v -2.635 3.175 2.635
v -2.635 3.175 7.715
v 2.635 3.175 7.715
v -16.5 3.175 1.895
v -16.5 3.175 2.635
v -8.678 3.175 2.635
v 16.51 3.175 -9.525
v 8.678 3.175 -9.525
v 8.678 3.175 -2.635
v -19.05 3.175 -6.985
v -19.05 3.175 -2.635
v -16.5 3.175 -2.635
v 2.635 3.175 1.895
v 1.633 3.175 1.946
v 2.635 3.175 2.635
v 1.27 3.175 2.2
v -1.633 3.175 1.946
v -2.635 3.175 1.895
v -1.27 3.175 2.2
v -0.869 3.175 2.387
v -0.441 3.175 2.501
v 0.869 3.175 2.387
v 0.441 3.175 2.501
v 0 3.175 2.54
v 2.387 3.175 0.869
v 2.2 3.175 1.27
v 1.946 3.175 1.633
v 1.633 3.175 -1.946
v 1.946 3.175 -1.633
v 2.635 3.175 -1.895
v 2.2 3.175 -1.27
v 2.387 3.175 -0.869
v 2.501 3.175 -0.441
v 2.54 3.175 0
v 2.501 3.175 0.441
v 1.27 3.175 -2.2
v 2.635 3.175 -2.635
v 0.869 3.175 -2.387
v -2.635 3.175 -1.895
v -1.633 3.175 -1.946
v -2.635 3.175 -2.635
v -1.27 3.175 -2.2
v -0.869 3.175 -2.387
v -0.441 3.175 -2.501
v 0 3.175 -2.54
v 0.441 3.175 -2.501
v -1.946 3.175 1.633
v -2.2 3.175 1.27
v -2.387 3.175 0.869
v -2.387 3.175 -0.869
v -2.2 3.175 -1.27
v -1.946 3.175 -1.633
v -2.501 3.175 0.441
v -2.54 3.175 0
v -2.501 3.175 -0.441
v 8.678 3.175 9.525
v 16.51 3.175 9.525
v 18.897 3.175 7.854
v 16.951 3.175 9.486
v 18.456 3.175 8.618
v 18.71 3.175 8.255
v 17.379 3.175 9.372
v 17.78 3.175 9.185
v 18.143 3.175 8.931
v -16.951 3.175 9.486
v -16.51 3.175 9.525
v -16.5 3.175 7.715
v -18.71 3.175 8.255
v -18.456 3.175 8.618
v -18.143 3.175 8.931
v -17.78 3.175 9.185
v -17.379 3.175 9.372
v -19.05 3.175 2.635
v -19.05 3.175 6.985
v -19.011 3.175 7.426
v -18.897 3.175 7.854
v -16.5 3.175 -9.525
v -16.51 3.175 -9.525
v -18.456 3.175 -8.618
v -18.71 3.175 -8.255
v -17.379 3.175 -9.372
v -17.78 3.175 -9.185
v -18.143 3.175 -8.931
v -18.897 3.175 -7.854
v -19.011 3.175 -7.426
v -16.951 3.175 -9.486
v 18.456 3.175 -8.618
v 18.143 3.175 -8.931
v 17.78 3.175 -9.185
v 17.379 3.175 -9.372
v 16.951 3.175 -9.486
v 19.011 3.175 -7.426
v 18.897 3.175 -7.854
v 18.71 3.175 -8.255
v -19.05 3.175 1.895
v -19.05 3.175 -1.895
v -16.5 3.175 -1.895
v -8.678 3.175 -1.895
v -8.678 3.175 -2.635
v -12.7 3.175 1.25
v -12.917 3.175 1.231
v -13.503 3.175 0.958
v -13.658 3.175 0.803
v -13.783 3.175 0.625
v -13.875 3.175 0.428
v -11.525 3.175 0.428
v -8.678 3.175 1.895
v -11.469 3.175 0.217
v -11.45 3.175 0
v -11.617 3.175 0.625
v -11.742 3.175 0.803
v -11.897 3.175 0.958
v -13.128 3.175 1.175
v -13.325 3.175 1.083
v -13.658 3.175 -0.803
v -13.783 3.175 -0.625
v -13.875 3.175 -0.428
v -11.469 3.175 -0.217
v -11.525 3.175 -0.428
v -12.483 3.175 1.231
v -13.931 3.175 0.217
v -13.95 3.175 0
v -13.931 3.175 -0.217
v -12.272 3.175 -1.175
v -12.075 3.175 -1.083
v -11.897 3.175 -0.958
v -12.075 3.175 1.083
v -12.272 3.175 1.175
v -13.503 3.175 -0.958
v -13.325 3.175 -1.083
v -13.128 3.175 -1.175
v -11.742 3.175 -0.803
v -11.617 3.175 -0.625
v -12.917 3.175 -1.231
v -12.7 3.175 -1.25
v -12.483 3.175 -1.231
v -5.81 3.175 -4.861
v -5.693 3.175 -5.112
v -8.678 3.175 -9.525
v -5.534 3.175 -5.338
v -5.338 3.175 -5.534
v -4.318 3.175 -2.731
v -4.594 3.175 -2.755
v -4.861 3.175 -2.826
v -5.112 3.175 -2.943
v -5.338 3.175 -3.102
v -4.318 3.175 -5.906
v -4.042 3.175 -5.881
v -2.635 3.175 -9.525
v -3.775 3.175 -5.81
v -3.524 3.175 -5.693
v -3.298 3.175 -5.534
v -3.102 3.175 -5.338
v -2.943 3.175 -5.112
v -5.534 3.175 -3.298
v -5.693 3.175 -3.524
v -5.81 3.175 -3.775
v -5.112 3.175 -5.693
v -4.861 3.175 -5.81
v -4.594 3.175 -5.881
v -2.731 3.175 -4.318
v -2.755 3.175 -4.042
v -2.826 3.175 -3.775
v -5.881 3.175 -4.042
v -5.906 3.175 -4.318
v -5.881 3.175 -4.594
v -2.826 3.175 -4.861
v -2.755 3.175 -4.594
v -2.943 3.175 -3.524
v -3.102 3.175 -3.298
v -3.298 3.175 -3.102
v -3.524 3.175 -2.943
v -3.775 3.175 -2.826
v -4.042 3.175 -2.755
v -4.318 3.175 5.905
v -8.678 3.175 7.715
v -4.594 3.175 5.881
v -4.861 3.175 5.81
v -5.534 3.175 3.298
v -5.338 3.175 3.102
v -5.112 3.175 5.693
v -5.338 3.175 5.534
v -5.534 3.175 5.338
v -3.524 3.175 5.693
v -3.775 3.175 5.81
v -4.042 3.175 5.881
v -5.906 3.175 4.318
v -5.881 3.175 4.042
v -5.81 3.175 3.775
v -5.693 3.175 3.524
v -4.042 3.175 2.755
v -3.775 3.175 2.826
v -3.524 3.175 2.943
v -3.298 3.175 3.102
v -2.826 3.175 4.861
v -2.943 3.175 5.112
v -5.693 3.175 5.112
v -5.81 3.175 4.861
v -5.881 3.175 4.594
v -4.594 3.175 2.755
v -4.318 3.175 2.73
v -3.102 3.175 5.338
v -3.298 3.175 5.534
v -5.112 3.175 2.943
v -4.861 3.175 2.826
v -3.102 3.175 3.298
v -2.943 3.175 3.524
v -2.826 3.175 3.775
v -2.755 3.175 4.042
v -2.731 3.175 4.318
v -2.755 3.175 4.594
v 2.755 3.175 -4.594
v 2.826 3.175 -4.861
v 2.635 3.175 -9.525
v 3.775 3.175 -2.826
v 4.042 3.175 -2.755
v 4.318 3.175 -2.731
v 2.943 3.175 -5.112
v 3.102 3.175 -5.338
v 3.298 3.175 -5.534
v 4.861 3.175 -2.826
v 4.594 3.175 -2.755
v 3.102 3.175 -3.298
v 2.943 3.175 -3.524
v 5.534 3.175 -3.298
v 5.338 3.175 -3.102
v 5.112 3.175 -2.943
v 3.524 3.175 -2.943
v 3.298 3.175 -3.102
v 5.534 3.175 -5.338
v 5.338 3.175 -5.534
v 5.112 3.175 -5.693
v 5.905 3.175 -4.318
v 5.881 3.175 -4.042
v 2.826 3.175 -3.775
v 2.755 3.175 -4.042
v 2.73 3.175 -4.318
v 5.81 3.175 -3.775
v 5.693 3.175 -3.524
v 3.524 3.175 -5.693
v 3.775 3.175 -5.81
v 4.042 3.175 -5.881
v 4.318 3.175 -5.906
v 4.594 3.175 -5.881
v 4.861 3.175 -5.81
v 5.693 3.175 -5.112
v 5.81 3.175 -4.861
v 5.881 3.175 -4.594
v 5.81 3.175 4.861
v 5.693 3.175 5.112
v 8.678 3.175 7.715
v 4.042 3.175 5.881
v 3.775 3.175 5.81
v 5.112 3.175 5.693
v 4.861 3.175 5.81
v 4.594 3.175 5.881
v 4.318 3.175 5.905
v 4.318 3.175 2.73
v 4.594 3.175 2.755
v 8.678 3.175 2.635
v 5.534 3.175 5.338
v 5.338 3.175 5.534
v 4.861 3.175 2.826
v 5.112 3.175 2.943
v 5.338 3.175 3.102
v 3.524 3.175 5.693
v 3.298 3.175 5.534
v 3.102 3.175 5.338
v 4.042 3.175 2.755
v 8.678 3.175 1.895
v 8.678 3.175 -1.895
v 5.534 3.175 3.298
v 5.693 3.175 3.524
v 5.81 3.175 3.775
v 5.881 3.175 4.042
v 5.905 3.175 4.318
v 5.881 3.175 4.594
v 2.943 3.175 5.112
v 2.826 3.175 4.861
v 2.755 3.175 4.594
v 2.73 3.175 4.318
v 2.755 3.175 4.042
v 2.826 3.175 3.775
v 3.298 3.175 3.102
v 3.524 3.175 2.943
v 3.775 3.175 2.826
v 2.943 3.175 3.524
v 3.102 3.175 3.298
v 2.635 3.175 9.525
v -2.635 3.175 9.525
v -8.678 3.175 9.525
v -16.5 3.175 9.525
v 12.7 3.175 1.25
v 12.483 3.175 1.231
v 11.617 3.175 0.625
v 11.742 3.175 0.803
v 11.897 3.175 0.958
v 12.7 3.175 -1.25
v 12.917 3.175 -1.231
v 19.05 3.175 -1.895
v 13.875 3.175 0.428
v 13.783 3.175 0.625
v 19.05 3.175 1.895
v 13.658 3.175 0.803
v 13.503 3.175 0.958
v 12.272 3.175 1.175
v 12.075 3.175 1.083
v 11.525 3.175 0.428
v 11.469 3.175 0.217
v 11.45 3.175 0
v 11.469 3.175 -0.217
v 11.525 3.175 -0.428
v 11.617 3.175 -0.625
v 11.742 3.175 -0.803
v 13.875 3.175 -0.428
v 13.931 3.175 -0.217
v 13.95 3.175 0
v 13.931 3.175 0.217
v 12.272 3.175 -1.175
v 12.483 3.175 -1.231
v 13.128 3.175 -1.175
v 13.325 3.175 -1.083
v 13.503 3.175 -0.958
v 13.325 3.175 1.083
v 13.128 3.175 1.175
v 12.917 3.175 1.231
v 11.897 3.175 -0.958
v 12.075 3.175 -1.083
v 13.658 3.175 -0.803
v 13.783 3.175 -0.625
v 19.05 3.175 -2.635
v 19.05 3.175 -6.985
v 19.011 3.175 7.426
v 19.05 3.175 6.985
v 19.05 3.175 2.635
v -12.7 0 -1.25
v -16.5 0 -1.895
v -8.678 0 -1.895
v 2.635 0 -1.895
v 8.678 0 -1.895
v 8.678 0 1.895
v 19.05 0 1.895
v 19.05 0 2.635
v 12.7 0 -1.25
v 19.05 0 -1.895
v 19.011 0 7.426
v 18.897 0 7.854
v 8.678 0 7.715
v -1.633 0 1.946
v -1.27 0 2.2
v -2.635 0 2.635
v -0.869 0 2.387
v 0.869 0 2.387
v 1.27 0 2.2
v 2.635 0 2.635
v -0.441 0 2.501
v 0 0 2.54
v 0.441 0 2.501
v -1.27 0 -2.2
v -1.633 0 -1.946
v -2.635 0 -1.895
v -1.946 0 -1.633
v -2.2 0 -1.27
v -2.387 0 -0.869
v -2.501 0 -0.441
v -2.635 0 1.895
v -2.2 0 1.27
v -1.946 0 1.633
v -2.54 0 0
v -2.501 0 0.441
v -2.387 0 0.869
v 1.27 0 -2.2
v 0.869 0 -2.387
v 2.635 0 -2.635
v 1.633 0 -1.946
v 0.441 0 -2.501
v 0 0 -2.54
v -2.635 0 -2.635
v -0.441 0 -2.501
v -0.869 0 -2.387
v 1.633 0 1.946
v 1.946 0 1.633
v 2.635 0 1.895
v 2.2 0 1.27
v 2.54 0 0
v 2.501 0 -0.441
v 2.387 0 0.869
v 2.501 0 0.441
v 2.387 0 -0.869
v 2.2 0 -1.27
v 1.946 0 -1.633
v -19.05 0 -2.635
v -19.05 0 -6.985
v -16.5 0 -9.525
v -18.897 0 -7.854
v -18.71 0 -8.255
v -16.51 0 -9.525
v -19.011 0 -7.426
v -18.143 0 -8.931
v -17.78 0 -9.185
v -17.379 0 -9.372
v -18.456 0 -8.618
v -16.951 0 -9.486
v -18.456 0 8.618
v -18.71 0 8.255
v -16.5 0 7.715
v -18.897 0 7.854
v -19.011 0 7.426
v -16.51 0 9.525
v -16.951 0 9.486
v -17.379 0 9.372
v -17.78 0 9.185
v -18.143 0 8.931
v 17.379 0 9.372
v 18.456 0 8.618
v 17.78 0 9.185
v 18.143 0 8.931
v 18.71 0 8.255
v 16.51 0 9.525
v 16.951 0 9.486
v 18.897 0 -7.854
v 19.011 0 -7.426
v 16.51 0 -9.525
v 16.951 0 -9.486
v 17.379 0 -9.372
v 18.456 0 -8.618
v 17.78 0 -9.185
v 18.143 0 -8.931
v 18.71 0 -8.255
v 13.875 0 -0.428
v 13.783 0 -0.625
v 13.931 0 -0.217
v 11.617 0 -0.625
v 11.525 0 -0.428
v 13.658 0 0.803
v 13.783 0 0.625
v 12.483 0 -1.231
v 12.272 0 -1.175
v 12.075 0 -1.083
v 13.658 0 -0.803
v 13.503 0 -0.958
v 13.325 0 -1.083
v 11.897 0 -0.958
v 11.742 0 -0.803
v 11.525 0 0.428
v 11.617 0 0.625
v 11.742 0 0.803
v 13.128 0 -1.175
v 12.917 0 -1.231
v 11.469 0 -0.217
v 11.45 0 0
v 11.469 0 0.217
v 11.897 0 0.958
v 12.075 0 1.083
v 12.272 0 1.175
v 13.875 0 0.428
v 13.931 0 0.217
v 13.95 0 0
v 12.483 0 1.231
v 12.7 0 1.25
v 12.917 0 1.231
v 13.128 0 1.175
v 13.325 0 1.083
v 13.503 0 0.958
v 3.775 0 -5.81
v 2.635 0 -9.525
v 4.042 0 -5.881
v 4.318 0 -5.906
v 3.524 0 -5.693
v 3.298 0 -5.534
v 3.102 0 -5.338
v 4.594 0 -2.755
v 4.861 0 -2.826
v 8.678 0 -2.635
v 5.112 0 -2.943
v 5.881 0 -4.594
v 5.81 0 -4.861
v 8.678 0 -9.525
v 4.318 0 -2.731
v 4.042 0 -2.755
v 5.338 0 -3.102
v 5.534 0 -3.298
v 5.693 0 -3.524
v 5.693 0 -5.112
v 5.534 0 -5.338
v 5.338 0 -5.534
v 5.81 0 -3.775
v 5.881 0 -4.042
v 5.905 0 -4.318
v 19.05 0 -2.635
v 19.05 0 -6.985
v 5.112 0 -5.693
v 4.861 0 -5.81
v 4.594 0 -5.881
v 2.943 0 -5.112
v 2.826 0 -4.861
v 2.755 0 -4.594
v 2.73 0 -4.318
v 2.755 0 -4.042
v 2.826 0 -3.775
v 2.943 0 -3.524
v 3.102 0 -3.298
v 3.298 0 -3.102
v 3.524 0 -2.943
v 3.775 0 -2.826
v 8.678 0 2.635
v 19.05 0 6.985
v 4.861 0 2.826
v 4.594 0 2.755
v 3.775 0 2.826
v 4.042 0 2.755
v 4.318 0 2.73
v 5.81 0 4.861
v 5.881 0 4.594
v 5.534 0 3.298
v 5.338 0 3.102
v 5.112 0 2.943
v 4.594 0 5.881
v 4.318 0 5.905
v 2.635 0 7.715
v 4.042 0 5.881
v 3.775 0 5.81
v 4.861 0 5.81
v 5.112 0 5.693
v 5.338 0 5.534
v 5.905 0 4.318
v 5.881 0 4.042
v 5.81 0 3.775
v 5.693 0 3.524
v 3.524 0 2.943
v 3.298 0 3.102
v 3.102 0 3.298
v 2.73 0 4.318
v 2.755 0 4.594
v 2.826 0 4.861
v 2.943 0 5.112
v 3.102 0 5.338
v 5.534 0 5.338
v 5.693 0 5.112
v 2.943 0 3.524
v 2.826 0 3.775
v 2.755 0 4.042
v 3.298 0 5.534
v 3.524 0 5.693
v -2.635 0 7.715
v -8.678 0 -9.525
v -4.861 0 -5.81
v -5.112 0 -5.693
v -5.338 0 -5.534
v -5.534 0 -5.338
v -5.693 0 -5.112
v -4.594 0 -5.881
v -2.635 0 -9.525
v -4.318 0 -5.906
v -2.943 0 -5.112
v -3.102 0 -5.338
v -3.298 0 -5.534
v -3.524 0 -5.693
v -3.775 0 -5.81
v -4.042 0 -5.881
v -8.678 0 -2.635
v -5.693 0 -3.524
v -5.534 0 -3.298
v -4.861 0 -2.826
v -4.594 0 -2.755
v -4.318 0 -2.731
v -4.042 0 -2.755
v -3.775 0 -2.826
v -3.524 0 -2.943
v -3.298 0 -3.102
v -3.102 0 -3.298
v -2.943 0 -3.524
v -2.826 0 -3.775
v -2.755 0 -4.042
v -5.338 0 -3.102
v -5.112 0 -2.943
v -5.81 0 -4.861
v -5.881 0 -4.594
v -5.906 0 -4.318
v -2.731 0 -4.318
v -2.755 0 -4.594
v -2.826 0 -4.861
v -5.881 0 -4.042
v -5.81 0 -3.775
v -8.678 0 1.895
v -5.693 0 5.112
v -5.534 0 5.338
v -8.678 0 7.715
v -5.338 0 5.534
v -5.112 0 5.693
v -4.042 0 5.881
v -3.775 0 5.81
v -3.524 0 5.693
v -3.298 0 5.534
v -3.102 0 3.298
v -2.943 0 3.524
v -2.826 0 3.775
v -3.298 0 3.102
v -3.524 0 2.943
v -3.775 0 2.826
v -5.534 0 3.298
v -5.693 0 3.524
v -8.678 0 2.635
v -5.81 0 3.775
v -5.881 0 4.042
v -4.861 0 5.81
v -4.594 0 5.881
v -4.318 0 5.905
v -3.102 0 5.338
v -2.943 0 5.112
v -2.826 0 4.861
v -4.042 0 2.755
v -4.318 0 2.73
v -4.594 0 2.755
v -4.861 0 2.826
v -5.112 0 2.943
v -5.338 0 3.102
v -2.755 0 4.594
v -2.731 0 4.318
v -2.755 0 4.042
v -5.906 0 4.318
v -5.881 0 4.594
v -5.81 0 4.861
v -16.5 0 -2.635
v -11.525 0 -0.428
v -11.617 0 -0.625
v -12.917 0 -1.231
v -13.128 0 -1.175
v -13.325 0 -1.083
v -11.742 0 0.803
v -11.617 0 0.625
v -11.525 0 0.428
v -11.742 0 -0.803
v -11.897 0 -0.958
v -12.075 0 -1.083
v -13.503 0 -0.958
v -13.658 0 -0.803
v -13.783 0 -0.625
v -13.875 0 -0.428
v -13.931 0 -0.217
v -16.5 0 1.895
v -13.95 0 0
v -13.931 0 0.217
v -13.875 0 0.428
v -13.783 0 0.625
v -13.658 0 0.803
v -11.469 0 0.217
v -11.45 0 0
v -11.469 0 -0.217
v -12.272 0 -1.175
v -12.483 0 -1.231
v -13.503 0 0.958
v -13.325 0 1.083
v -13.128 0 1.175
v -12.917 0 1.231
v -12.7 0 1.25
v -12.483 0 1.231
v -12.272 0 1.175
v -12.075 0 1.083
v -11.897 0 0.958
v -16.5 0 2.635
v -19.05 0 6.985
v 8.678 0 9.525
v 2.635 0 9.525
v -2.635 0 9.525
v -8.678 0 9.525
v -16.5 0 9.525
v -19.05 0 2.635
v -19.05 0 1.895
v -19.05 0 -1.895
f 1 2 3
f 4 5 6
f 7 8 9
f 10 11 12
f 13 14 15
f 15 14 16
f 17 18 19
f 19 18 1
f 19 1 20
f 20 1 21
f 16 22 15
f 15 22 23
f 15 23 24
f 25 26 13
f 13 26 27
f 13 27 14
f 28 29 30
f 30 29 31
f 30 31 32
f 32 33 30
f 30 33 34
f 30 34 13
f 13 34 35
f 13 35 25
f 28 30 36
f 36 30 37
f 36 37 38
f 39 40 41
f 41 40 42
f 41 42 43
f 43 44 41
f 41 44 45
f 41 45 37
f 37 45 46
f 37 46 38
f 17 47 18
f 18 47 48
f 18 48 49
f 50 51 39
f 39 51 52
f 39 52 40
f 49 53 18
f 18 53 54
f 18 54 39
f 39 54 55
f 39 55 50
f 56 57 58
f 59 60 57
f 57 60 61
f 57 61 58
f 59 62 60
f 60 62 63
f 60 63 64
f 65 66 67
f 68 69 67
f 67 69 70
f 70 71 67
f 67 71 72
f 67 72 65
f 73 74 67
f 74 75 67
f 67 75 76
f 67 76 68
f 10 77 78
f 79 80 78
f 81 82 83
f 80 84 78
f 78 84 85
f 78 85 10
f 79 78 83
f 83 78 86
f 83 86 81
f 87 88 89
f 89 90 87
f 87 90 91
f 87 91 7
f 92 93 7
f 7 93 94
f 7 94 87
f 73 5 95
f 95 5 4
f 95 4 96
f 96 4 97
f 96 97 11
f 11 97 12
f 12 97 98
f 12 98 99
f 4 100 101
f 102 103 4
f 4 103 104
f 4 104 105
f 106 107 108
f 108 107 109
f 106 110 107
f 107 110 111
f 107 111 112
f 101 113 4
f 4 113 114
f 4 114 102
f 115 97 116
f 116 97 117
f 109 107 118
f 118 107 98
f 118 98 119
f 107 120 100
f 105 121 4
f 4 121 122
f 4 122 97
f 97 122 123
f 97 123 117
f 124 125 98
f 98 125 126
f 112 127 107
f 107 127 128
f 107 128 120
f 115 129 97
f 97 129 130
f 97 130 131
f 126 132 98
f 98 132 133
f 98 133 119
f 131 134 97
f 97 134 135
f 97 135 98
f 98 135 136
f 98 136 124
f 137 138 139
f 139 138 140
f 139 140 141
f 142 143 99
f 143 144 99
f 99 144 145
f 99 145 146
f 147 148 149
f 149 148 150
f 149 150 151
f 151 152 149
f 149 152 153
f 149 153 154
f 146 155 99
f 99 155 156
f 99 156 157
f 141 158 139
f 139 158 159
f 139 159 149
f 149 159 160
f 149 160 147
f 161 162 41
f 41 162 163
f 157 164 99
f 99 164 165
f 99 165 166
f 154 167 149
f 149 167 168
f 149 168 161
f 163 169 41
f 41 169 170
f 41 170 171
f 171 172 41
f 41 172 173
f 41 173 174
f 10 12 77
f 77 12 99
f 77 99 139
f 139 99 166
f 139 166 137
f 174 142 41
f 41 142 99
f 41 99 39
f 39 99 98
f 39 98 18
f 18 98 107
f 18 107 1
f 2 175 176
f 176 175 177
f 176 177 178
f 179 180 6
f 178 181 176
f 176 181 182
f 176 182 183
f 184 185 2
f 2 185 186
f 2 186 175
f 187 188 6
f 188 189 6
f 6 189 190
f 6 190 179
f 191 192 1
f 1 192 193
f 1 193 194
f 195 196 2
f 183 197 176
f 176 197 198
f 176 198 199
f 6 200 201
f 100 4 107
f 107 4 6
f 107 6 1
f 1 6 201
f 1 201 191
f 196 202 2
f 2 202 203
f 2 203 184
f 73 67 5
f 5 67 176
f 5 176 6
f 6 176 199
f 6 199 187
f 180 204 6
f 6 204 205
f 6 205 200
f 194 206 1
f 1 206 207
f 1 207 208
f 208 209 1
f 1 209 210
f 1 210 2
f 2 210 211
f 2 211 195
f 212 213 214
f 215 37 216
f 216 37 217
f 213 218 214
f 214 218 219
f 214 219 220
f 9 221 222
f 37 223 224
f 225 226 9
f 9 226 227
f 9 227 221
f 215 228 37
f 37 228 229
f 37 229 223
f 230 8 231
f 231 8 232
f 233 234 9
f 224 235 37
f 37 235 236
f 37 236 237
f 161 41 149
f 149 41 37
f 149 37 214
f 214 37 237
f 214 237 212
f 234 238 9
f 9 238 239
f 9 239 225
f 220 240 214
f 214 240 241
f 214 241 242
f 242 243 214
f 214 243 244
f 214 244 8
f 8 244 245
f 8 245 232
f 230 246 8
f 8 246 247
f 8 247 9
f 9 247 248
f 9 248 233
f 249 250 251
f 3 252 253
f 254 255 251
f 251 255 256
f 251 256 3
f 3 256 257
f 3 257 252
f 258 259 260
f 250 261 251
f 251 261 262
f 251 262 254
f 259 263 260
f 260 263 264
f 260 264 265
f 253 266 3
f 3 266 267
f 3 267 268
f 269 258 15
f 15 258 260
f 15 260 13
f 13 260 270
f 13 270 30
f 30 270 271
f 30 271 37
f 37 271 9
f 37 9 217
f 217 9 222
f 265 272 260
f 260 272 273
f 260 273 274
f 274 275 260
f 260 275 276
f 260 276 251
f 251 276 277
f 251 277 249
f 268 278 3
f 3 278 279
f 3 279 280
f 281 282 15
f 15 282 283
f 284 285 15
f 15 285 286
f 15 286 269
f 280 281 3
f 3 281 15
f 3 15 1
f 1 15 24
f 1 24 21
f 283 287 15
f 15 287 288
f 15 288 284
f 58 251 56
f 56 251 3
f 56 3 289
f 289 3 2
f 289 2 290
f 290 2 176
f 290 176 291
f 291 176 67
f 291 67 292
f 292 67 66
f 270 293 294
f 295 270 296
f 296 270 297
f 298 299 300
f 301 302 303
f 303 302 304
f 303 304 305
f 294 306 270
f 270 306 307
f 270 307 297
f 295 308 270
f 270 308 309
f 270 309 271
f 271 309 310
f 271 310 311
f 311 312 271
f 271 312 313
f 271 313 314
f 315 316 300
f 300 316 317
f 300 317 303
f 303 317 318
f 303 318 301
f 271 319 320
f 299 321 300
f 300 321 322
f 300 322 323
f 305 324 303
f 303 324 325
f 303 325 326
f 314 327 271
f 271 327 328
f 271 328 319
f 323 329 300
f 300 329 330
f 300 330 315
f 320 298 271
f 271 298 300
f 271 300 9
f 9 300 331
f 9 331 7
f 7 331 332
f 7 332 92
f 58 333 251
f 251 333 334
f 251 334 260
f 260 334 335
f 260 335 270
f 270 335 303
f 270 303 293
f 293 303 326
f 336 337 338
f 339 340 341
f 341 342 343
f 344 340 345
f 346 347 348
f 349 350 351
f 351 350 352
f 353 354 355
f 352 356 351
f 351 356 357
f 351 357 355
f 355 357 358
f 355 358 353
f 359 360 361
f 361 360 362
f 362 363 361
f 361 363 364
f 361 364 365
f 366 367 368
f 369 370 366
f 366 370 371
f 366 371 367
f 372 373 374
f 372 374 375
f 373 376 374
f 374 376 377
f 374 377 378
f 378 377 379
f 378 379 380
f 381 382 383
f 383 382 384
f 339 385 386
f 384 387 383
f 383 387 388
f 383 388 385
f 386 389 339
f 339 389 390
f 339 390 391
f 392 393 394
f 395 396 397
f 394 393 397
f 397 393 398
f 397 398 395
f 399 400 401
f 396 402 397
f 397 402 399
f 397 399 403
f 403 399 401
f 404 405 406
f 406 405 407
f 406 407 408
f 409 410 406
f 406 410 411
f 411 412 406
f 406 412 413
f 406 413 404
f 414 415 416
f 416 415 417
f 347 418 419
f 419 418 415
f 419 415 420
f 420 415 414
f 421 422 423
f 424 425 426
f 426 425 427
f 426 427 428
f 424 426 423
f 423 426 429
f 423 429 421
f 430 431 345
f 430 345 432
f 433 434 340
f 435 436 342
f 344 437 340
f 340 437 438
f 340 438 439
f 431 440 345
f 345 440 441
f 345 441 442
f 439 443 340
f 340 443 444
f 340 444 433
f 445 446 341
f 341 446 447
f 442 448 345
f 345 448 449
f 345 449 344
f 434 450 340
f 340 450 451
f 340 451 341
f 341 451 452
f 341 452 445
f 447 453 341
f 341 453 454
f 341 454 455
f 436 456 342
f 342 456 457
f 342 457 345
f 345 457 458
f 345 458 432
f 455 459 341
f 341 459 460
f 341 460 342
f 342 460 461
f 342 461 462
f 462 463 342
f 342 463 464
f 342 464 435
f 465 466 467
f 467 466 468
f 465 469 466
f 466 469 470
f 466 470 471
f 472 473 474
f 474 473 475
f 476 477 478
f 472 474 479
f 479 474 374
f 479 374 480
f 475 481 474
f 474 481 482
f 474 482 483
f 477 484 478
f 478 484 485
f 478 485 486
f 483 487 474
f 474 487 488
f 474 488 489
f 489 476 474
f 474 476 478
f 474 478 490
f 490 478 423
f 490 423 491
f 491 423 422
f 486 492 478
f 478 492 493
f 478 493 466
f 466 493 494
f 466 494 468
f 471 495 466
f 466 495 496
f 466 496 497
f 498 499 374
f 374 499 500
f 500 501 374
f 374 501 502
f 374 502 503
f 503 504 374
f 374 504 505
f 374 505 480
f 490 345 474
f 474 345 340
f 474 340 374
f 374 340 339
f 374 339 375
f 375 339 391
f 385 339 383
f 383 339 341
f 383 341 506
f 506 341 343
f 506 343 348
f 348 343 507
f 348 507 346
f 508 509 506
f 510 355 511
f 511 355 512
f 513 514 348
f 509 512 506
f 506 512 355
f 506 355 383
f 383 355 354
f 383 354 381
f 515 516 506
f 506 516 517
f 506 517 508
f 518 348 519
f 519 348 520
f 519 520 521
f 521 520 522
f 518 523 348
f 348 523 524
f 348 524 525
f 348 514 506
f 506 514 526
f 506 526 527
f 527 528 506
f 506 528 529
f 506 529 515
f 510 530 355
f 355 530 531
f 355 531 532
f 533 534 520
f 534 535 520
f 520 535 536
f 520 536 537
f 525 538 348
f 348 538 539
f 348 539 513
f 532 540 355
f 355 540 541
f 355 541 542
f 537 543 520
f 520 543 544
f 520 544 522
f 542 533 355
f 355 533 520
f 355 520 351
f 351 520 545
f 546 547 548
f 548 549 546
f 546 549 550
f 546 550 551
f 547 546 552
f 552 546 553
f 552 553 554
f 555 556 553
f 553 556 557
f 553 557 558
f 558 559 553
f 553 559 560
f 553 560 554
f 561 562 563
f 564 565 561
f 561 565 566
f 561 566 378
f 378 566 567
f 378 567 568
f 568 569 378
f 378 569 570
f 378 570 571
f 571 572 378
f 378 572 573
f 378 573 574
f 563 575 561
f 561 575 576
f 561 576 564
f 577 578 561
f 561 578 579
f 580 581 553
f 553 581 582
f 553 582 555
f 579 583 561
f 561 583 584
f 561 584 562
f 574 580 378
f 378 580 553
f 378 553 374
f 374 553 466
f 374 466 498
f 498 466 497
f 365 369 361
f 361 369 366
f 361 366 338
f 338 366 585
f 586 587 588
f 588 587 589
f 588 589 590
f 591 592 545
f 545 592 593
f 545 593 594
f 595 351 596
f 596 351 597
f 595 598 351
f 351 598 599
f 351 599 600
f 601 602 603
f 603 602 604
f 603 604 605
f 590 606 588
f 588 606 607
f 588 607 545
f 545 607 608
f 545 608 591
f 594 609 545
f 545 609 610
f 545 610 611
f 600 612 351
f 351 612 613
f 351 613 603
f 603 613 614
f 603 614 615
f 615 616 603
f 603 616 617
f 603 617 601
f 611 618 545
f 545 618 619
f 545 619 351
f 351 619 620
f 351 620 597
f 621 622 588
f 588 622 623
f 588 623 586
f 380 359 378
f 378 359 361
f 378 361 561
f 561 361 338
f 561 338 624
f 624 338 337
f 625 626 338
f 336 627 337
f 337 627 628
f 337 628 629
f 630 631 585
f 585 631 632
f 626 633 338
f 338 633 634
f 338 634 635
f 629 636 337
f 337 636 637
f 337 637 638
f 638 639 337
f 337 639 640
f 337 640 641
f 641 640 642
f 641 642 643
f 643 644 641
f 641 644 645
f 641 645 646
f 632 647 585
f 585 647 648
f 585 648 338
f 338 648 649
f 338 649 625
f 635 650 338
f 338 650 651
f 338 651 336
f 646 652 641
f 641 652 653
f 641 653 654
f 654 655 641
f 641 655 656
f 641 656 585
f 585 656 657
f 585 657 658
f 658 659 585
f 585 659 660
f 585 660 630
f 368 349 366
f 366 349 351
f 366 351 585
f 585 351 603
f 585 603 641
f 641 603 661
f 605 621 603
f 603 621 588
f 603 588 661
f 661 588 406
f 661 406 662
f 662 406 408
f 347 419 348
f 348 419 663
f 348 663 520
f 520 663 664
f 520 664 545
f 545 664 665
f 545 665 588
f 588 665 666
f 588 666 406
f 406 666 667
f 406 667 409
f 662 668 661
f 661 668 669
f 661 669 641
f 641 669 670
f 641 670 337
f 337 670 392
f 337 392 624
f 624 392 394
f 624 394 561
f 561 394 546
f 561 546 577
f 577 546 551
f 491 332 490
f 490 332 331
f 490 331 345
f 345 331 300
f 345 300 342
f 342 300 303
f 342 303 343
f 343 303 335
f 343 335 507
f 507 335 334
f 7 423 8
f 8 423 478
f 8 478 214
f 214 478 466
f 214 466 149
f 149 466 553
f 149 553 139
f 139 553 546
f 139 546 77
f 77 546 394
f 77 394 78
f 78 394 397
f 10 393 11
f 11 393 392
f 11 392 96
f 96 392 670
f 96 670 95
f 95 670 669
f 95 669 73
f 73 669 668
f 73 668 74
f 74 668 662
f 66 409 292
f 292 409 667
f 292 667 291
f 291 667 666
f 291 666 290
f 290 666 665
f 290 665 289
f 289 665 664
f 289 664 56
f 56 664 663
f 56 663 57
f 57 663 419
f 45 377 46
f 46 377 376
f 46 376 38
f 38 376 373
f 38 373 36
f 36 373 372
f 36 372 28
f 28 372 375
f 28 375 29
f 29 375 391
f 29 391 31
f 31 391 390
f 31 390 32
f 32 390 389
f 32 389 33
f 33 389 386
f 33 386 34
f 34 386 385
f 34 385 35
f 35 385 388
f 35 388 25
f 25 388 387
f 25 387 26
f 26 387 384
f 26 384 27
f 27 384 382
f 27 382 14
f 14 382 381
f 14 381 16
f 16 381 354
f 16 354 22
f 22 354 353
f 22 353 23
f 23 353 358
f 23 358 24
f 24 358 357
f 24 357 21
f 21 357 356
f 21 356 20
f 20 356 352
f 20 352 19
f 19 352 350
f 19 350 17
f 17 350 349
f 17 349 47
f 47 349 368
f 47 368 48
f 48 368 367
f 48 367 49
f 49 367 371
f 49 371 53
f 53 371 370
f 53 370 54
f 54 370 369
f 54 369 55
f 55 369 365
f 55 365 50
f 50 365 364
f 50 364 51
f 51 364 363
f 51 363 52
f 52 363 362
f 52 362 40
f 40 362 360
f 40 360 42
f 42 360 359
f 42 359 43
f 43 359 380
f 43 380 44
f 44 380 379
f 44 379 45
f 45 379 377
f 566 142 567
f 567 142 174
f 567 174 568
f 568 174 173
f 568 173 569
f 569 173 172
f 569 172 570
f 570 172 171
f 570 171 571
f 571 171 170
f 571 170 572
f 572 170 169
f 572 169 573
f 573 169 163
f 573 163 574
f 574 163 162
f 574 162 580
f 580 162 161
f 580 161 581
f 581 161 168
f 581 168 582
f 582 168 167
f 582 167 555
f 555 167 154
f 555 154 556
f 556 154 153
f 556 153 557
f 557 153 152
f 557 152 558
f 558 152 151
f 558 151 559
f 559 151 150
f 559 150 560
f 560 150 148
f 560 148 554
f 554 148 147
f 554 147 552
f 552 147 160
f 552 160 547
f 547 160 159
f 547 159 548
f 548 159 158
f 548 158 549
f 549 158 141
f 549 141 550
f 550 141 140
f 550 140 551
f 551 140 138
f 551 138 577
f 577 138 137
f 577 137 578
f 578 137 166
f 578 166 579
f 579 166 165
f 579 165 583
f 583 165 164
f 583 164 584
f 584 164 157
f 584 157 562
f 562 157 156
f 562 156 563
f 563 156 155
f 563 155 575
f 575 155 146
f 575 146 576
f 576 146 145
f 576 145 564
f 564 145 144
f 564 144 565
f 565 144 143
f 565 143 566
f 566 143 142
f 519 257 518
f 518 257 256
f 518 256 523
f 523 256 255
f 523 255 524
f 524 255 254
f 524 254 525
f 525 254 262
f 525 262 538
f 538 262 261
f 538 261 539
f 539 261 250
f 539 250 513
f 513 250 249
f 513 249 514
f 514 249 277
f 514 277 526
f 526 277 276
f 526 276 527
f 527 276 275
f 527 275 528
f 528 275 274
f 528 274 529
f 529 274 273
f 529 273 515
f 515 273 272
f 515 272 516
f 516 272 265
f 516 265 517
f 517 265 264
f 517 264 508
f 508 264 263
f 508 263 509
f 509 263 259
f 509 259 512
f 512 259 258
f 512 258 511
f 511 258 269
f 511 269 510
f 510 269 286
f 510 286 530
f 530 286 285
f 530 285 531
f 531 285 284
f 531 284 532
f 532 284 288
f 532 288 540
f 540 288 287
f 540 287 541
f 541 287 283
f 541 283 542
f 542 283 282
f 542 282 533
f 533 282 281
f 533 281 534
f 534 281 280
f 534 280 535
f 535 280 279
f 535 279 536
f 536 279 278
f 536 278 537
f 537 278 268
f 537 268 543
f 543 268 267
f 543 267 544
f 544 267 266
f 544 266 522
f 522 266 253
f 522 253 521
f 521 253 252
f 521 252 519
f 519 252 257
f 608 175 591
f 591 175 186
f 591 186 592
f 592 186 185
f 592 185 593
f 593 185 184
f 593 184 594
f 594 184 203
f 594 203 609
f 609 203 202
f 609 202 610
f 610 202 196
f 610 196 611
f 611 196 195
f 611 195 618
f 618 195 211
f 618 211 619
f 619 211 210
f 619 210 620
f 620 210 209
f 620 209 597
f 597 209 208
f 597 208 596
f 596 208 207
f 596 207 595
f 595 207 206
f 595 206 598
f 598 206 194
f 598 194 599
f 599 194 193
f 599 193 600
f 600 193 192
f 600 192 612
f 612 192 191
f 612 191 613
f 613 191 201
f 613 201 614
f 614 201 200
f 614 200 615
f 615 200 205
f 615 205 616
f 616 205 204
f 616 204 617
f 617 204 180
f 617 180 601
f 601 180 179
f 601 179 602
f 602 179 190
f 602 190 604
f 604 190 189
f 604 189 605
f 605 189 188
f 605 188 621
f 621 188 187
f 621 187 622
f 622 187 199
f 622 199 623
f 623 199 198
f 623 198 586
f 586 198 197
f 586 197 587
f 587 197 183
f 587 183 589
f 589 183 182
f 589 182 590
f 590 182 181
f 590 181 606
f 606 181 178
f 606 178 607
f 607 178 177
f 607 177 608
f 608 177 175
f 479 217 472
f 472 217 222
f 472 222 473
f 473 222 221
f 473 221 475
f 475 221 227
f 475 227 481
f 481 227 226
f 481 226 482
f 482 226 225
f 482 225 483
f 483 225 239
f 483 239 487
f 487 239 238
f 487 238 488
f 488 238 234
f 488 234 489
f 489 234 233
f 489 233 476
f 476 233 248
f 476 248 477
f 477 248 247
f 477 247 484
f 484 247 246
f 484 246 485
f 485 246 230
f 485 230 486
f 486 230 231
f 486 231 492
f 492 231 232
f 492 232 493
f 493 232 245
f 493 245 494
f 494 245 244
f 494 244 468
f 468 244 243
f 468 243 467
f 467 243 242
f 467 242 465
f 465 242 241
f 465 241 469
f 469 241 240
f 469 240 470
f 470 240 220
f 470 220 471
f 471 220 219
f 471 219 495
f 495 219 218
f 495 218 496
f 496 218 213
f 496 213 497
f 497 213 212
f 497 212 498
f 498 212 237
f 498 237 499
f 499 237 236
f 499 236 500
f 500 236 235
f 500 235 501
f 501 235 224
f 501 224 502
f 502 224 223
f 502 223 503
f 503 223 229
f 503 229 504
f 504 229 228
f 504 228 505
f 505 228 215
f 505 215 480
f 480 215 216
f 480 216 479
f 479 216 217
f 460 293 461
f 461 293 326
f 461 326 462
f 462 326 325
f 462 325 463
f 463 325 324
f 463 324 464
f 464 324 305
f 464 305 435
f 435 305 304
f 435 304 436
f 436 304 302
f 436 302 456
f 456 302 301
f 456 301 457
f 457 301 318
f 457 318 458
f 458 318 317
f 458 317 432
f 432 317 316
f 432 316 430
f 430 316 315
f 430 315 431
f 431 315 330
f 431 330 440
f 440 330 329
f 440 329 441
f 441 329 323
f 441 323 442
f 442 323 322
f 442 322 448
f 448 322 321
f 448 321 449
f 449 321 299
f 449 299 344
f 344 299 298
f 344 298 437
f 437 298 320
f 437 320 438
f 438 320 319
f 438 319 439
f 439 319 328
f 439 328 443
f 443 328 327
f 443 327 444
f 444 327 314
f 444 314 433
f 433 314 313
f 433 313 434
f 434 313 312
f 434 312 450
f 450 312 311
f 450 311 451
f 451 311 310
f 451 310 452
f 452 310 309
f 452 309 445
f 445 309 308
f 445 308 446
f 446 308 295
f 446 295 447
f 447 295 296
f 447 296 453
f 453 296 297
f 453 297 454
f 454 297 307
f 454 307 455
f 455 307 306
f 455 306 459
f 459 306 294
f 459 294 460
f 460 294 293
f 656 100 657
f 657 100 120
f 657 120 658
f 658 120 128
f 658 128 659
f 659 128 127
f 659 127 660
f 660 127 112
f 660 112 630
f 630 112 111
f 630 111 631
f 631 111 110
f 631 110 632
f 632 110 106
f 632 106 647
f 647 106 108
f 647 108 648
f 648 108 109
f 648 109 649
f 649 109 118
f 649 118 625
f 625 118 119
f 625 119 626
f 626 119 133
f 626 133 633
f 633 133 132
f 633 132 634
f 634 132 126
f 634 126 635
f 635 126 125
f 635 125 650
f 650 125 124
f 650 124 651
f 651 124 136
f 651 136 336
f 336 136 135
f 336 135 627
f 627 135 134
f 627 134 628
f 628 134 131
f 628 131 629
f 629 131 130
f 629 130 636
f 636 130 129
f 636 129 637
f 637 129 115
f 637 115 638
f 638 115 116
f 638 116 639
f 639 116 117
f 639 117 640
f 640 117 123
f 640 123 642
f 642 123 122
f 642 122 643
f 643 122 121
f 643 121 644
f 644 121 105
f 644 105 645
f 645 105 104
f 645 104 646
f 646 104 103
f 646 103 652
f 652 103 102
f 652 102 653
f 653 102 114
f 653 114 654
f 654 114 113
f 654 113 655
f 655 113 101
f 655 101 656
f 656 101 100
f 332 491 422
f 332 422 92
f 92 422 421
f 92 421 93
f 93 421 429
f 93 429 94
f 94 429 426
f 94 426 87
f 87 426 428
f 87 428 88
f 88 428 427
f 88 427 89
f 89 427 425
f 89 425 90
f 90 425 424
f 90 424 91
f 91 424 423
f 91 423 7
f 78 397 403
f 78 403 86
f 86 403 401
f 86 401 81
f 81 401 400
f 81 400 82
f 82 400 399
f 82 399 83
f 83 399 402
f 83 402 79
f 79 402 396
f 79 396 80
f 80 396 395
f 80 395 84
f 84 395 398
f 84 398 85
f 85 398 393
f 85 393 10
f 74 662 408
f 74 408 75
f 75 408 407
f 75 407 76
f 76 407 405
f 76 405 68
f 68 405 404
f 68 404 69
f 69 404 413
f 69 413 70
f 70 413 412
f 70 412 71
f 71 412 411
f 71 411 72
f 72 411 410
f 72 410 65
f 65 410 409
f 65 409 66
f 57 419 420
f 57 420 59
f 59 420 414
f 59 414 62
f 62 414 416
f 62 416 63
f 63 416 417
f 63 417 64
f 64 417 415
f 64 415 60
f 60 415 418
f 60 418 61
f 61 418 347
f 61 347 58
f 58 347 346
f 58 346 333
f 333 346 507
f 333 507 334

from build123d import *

# Parameters (mm, degrees)
SKETCH1_W             = 38.1
SKETCH1_H             = 19.05
SKETCH1_R             = 2.54
BOSS_EXTRUDE1_DEPTH   = 3.175
SKETCH2_R             = 1.5875
CUT_EXTRUDE1_DEPTH    = 4.175
F_2_5MM_DOWEL_HOLE1_D = 2.5
FILLET1_R             = 2.54


with BuildPart() as part:
    # Sketch1 → Boss-Extrude1 (new body)
    with BuildSketch(Plane(origin=(0, 0, 0), x_dir=(1, 0, 0), z_dir=(0, 1, 0))):
        Rectangle(SKETCH1_W, SKETCH1_H)
        Circle(SKETCH1_R, mode=Mode.SUBTRACT)
    extrude(amount=BOSS_EXTRUDE1_DEPTH)

    # Sketch2 → Cut-Extrude1 (cut, through all)
    with BuildSketch(Plane(origin=(0, 3.175, 0), x_dir=(1, 0, 0), z_dir=(0, 1, 0))):
        with Locations((-4.318, 4.318)):
            Circle(SKETCH2_R)
        with Locations((4.318, 4.318)):
            Circle(SKETCH2_R)
        with Locations((-4.318, -4.318)):
            Circle(SKETCH2_R)
        with Locations((4.318, -4.318)):
            Circle(SKETCH2_R)
    extrude(amount=-CUT_EXTRUDE1_DEPTH, mode=Mode.SUBTRACT)

    # Ø2.5mm Dowel Hole1 (through all)
    with Locations(Plane(origin=(0, 3.175, 0), x_dir=(1, 0, 0), z_dir=(0, 1, 0))):
        with Locations((12.7, 0), (-12.7, 0)):
            Hole(F_2_5MM_DOWEL_HOLE1_D / 2)

    # Fillet1
    fillet1_edges = [part.edges().sort_by_distance(p)[0] for p in [
        (19.05, 1.5875, 9.525),
        (-19.05, 1.5875, 9.525),
        (-19.05, 1.5875, -9.525),
        (19.05, 1.5875, -9.525),
    ]]
    fillet(fillet1_edges, radius=FILLET1_R)


solid = part.part
